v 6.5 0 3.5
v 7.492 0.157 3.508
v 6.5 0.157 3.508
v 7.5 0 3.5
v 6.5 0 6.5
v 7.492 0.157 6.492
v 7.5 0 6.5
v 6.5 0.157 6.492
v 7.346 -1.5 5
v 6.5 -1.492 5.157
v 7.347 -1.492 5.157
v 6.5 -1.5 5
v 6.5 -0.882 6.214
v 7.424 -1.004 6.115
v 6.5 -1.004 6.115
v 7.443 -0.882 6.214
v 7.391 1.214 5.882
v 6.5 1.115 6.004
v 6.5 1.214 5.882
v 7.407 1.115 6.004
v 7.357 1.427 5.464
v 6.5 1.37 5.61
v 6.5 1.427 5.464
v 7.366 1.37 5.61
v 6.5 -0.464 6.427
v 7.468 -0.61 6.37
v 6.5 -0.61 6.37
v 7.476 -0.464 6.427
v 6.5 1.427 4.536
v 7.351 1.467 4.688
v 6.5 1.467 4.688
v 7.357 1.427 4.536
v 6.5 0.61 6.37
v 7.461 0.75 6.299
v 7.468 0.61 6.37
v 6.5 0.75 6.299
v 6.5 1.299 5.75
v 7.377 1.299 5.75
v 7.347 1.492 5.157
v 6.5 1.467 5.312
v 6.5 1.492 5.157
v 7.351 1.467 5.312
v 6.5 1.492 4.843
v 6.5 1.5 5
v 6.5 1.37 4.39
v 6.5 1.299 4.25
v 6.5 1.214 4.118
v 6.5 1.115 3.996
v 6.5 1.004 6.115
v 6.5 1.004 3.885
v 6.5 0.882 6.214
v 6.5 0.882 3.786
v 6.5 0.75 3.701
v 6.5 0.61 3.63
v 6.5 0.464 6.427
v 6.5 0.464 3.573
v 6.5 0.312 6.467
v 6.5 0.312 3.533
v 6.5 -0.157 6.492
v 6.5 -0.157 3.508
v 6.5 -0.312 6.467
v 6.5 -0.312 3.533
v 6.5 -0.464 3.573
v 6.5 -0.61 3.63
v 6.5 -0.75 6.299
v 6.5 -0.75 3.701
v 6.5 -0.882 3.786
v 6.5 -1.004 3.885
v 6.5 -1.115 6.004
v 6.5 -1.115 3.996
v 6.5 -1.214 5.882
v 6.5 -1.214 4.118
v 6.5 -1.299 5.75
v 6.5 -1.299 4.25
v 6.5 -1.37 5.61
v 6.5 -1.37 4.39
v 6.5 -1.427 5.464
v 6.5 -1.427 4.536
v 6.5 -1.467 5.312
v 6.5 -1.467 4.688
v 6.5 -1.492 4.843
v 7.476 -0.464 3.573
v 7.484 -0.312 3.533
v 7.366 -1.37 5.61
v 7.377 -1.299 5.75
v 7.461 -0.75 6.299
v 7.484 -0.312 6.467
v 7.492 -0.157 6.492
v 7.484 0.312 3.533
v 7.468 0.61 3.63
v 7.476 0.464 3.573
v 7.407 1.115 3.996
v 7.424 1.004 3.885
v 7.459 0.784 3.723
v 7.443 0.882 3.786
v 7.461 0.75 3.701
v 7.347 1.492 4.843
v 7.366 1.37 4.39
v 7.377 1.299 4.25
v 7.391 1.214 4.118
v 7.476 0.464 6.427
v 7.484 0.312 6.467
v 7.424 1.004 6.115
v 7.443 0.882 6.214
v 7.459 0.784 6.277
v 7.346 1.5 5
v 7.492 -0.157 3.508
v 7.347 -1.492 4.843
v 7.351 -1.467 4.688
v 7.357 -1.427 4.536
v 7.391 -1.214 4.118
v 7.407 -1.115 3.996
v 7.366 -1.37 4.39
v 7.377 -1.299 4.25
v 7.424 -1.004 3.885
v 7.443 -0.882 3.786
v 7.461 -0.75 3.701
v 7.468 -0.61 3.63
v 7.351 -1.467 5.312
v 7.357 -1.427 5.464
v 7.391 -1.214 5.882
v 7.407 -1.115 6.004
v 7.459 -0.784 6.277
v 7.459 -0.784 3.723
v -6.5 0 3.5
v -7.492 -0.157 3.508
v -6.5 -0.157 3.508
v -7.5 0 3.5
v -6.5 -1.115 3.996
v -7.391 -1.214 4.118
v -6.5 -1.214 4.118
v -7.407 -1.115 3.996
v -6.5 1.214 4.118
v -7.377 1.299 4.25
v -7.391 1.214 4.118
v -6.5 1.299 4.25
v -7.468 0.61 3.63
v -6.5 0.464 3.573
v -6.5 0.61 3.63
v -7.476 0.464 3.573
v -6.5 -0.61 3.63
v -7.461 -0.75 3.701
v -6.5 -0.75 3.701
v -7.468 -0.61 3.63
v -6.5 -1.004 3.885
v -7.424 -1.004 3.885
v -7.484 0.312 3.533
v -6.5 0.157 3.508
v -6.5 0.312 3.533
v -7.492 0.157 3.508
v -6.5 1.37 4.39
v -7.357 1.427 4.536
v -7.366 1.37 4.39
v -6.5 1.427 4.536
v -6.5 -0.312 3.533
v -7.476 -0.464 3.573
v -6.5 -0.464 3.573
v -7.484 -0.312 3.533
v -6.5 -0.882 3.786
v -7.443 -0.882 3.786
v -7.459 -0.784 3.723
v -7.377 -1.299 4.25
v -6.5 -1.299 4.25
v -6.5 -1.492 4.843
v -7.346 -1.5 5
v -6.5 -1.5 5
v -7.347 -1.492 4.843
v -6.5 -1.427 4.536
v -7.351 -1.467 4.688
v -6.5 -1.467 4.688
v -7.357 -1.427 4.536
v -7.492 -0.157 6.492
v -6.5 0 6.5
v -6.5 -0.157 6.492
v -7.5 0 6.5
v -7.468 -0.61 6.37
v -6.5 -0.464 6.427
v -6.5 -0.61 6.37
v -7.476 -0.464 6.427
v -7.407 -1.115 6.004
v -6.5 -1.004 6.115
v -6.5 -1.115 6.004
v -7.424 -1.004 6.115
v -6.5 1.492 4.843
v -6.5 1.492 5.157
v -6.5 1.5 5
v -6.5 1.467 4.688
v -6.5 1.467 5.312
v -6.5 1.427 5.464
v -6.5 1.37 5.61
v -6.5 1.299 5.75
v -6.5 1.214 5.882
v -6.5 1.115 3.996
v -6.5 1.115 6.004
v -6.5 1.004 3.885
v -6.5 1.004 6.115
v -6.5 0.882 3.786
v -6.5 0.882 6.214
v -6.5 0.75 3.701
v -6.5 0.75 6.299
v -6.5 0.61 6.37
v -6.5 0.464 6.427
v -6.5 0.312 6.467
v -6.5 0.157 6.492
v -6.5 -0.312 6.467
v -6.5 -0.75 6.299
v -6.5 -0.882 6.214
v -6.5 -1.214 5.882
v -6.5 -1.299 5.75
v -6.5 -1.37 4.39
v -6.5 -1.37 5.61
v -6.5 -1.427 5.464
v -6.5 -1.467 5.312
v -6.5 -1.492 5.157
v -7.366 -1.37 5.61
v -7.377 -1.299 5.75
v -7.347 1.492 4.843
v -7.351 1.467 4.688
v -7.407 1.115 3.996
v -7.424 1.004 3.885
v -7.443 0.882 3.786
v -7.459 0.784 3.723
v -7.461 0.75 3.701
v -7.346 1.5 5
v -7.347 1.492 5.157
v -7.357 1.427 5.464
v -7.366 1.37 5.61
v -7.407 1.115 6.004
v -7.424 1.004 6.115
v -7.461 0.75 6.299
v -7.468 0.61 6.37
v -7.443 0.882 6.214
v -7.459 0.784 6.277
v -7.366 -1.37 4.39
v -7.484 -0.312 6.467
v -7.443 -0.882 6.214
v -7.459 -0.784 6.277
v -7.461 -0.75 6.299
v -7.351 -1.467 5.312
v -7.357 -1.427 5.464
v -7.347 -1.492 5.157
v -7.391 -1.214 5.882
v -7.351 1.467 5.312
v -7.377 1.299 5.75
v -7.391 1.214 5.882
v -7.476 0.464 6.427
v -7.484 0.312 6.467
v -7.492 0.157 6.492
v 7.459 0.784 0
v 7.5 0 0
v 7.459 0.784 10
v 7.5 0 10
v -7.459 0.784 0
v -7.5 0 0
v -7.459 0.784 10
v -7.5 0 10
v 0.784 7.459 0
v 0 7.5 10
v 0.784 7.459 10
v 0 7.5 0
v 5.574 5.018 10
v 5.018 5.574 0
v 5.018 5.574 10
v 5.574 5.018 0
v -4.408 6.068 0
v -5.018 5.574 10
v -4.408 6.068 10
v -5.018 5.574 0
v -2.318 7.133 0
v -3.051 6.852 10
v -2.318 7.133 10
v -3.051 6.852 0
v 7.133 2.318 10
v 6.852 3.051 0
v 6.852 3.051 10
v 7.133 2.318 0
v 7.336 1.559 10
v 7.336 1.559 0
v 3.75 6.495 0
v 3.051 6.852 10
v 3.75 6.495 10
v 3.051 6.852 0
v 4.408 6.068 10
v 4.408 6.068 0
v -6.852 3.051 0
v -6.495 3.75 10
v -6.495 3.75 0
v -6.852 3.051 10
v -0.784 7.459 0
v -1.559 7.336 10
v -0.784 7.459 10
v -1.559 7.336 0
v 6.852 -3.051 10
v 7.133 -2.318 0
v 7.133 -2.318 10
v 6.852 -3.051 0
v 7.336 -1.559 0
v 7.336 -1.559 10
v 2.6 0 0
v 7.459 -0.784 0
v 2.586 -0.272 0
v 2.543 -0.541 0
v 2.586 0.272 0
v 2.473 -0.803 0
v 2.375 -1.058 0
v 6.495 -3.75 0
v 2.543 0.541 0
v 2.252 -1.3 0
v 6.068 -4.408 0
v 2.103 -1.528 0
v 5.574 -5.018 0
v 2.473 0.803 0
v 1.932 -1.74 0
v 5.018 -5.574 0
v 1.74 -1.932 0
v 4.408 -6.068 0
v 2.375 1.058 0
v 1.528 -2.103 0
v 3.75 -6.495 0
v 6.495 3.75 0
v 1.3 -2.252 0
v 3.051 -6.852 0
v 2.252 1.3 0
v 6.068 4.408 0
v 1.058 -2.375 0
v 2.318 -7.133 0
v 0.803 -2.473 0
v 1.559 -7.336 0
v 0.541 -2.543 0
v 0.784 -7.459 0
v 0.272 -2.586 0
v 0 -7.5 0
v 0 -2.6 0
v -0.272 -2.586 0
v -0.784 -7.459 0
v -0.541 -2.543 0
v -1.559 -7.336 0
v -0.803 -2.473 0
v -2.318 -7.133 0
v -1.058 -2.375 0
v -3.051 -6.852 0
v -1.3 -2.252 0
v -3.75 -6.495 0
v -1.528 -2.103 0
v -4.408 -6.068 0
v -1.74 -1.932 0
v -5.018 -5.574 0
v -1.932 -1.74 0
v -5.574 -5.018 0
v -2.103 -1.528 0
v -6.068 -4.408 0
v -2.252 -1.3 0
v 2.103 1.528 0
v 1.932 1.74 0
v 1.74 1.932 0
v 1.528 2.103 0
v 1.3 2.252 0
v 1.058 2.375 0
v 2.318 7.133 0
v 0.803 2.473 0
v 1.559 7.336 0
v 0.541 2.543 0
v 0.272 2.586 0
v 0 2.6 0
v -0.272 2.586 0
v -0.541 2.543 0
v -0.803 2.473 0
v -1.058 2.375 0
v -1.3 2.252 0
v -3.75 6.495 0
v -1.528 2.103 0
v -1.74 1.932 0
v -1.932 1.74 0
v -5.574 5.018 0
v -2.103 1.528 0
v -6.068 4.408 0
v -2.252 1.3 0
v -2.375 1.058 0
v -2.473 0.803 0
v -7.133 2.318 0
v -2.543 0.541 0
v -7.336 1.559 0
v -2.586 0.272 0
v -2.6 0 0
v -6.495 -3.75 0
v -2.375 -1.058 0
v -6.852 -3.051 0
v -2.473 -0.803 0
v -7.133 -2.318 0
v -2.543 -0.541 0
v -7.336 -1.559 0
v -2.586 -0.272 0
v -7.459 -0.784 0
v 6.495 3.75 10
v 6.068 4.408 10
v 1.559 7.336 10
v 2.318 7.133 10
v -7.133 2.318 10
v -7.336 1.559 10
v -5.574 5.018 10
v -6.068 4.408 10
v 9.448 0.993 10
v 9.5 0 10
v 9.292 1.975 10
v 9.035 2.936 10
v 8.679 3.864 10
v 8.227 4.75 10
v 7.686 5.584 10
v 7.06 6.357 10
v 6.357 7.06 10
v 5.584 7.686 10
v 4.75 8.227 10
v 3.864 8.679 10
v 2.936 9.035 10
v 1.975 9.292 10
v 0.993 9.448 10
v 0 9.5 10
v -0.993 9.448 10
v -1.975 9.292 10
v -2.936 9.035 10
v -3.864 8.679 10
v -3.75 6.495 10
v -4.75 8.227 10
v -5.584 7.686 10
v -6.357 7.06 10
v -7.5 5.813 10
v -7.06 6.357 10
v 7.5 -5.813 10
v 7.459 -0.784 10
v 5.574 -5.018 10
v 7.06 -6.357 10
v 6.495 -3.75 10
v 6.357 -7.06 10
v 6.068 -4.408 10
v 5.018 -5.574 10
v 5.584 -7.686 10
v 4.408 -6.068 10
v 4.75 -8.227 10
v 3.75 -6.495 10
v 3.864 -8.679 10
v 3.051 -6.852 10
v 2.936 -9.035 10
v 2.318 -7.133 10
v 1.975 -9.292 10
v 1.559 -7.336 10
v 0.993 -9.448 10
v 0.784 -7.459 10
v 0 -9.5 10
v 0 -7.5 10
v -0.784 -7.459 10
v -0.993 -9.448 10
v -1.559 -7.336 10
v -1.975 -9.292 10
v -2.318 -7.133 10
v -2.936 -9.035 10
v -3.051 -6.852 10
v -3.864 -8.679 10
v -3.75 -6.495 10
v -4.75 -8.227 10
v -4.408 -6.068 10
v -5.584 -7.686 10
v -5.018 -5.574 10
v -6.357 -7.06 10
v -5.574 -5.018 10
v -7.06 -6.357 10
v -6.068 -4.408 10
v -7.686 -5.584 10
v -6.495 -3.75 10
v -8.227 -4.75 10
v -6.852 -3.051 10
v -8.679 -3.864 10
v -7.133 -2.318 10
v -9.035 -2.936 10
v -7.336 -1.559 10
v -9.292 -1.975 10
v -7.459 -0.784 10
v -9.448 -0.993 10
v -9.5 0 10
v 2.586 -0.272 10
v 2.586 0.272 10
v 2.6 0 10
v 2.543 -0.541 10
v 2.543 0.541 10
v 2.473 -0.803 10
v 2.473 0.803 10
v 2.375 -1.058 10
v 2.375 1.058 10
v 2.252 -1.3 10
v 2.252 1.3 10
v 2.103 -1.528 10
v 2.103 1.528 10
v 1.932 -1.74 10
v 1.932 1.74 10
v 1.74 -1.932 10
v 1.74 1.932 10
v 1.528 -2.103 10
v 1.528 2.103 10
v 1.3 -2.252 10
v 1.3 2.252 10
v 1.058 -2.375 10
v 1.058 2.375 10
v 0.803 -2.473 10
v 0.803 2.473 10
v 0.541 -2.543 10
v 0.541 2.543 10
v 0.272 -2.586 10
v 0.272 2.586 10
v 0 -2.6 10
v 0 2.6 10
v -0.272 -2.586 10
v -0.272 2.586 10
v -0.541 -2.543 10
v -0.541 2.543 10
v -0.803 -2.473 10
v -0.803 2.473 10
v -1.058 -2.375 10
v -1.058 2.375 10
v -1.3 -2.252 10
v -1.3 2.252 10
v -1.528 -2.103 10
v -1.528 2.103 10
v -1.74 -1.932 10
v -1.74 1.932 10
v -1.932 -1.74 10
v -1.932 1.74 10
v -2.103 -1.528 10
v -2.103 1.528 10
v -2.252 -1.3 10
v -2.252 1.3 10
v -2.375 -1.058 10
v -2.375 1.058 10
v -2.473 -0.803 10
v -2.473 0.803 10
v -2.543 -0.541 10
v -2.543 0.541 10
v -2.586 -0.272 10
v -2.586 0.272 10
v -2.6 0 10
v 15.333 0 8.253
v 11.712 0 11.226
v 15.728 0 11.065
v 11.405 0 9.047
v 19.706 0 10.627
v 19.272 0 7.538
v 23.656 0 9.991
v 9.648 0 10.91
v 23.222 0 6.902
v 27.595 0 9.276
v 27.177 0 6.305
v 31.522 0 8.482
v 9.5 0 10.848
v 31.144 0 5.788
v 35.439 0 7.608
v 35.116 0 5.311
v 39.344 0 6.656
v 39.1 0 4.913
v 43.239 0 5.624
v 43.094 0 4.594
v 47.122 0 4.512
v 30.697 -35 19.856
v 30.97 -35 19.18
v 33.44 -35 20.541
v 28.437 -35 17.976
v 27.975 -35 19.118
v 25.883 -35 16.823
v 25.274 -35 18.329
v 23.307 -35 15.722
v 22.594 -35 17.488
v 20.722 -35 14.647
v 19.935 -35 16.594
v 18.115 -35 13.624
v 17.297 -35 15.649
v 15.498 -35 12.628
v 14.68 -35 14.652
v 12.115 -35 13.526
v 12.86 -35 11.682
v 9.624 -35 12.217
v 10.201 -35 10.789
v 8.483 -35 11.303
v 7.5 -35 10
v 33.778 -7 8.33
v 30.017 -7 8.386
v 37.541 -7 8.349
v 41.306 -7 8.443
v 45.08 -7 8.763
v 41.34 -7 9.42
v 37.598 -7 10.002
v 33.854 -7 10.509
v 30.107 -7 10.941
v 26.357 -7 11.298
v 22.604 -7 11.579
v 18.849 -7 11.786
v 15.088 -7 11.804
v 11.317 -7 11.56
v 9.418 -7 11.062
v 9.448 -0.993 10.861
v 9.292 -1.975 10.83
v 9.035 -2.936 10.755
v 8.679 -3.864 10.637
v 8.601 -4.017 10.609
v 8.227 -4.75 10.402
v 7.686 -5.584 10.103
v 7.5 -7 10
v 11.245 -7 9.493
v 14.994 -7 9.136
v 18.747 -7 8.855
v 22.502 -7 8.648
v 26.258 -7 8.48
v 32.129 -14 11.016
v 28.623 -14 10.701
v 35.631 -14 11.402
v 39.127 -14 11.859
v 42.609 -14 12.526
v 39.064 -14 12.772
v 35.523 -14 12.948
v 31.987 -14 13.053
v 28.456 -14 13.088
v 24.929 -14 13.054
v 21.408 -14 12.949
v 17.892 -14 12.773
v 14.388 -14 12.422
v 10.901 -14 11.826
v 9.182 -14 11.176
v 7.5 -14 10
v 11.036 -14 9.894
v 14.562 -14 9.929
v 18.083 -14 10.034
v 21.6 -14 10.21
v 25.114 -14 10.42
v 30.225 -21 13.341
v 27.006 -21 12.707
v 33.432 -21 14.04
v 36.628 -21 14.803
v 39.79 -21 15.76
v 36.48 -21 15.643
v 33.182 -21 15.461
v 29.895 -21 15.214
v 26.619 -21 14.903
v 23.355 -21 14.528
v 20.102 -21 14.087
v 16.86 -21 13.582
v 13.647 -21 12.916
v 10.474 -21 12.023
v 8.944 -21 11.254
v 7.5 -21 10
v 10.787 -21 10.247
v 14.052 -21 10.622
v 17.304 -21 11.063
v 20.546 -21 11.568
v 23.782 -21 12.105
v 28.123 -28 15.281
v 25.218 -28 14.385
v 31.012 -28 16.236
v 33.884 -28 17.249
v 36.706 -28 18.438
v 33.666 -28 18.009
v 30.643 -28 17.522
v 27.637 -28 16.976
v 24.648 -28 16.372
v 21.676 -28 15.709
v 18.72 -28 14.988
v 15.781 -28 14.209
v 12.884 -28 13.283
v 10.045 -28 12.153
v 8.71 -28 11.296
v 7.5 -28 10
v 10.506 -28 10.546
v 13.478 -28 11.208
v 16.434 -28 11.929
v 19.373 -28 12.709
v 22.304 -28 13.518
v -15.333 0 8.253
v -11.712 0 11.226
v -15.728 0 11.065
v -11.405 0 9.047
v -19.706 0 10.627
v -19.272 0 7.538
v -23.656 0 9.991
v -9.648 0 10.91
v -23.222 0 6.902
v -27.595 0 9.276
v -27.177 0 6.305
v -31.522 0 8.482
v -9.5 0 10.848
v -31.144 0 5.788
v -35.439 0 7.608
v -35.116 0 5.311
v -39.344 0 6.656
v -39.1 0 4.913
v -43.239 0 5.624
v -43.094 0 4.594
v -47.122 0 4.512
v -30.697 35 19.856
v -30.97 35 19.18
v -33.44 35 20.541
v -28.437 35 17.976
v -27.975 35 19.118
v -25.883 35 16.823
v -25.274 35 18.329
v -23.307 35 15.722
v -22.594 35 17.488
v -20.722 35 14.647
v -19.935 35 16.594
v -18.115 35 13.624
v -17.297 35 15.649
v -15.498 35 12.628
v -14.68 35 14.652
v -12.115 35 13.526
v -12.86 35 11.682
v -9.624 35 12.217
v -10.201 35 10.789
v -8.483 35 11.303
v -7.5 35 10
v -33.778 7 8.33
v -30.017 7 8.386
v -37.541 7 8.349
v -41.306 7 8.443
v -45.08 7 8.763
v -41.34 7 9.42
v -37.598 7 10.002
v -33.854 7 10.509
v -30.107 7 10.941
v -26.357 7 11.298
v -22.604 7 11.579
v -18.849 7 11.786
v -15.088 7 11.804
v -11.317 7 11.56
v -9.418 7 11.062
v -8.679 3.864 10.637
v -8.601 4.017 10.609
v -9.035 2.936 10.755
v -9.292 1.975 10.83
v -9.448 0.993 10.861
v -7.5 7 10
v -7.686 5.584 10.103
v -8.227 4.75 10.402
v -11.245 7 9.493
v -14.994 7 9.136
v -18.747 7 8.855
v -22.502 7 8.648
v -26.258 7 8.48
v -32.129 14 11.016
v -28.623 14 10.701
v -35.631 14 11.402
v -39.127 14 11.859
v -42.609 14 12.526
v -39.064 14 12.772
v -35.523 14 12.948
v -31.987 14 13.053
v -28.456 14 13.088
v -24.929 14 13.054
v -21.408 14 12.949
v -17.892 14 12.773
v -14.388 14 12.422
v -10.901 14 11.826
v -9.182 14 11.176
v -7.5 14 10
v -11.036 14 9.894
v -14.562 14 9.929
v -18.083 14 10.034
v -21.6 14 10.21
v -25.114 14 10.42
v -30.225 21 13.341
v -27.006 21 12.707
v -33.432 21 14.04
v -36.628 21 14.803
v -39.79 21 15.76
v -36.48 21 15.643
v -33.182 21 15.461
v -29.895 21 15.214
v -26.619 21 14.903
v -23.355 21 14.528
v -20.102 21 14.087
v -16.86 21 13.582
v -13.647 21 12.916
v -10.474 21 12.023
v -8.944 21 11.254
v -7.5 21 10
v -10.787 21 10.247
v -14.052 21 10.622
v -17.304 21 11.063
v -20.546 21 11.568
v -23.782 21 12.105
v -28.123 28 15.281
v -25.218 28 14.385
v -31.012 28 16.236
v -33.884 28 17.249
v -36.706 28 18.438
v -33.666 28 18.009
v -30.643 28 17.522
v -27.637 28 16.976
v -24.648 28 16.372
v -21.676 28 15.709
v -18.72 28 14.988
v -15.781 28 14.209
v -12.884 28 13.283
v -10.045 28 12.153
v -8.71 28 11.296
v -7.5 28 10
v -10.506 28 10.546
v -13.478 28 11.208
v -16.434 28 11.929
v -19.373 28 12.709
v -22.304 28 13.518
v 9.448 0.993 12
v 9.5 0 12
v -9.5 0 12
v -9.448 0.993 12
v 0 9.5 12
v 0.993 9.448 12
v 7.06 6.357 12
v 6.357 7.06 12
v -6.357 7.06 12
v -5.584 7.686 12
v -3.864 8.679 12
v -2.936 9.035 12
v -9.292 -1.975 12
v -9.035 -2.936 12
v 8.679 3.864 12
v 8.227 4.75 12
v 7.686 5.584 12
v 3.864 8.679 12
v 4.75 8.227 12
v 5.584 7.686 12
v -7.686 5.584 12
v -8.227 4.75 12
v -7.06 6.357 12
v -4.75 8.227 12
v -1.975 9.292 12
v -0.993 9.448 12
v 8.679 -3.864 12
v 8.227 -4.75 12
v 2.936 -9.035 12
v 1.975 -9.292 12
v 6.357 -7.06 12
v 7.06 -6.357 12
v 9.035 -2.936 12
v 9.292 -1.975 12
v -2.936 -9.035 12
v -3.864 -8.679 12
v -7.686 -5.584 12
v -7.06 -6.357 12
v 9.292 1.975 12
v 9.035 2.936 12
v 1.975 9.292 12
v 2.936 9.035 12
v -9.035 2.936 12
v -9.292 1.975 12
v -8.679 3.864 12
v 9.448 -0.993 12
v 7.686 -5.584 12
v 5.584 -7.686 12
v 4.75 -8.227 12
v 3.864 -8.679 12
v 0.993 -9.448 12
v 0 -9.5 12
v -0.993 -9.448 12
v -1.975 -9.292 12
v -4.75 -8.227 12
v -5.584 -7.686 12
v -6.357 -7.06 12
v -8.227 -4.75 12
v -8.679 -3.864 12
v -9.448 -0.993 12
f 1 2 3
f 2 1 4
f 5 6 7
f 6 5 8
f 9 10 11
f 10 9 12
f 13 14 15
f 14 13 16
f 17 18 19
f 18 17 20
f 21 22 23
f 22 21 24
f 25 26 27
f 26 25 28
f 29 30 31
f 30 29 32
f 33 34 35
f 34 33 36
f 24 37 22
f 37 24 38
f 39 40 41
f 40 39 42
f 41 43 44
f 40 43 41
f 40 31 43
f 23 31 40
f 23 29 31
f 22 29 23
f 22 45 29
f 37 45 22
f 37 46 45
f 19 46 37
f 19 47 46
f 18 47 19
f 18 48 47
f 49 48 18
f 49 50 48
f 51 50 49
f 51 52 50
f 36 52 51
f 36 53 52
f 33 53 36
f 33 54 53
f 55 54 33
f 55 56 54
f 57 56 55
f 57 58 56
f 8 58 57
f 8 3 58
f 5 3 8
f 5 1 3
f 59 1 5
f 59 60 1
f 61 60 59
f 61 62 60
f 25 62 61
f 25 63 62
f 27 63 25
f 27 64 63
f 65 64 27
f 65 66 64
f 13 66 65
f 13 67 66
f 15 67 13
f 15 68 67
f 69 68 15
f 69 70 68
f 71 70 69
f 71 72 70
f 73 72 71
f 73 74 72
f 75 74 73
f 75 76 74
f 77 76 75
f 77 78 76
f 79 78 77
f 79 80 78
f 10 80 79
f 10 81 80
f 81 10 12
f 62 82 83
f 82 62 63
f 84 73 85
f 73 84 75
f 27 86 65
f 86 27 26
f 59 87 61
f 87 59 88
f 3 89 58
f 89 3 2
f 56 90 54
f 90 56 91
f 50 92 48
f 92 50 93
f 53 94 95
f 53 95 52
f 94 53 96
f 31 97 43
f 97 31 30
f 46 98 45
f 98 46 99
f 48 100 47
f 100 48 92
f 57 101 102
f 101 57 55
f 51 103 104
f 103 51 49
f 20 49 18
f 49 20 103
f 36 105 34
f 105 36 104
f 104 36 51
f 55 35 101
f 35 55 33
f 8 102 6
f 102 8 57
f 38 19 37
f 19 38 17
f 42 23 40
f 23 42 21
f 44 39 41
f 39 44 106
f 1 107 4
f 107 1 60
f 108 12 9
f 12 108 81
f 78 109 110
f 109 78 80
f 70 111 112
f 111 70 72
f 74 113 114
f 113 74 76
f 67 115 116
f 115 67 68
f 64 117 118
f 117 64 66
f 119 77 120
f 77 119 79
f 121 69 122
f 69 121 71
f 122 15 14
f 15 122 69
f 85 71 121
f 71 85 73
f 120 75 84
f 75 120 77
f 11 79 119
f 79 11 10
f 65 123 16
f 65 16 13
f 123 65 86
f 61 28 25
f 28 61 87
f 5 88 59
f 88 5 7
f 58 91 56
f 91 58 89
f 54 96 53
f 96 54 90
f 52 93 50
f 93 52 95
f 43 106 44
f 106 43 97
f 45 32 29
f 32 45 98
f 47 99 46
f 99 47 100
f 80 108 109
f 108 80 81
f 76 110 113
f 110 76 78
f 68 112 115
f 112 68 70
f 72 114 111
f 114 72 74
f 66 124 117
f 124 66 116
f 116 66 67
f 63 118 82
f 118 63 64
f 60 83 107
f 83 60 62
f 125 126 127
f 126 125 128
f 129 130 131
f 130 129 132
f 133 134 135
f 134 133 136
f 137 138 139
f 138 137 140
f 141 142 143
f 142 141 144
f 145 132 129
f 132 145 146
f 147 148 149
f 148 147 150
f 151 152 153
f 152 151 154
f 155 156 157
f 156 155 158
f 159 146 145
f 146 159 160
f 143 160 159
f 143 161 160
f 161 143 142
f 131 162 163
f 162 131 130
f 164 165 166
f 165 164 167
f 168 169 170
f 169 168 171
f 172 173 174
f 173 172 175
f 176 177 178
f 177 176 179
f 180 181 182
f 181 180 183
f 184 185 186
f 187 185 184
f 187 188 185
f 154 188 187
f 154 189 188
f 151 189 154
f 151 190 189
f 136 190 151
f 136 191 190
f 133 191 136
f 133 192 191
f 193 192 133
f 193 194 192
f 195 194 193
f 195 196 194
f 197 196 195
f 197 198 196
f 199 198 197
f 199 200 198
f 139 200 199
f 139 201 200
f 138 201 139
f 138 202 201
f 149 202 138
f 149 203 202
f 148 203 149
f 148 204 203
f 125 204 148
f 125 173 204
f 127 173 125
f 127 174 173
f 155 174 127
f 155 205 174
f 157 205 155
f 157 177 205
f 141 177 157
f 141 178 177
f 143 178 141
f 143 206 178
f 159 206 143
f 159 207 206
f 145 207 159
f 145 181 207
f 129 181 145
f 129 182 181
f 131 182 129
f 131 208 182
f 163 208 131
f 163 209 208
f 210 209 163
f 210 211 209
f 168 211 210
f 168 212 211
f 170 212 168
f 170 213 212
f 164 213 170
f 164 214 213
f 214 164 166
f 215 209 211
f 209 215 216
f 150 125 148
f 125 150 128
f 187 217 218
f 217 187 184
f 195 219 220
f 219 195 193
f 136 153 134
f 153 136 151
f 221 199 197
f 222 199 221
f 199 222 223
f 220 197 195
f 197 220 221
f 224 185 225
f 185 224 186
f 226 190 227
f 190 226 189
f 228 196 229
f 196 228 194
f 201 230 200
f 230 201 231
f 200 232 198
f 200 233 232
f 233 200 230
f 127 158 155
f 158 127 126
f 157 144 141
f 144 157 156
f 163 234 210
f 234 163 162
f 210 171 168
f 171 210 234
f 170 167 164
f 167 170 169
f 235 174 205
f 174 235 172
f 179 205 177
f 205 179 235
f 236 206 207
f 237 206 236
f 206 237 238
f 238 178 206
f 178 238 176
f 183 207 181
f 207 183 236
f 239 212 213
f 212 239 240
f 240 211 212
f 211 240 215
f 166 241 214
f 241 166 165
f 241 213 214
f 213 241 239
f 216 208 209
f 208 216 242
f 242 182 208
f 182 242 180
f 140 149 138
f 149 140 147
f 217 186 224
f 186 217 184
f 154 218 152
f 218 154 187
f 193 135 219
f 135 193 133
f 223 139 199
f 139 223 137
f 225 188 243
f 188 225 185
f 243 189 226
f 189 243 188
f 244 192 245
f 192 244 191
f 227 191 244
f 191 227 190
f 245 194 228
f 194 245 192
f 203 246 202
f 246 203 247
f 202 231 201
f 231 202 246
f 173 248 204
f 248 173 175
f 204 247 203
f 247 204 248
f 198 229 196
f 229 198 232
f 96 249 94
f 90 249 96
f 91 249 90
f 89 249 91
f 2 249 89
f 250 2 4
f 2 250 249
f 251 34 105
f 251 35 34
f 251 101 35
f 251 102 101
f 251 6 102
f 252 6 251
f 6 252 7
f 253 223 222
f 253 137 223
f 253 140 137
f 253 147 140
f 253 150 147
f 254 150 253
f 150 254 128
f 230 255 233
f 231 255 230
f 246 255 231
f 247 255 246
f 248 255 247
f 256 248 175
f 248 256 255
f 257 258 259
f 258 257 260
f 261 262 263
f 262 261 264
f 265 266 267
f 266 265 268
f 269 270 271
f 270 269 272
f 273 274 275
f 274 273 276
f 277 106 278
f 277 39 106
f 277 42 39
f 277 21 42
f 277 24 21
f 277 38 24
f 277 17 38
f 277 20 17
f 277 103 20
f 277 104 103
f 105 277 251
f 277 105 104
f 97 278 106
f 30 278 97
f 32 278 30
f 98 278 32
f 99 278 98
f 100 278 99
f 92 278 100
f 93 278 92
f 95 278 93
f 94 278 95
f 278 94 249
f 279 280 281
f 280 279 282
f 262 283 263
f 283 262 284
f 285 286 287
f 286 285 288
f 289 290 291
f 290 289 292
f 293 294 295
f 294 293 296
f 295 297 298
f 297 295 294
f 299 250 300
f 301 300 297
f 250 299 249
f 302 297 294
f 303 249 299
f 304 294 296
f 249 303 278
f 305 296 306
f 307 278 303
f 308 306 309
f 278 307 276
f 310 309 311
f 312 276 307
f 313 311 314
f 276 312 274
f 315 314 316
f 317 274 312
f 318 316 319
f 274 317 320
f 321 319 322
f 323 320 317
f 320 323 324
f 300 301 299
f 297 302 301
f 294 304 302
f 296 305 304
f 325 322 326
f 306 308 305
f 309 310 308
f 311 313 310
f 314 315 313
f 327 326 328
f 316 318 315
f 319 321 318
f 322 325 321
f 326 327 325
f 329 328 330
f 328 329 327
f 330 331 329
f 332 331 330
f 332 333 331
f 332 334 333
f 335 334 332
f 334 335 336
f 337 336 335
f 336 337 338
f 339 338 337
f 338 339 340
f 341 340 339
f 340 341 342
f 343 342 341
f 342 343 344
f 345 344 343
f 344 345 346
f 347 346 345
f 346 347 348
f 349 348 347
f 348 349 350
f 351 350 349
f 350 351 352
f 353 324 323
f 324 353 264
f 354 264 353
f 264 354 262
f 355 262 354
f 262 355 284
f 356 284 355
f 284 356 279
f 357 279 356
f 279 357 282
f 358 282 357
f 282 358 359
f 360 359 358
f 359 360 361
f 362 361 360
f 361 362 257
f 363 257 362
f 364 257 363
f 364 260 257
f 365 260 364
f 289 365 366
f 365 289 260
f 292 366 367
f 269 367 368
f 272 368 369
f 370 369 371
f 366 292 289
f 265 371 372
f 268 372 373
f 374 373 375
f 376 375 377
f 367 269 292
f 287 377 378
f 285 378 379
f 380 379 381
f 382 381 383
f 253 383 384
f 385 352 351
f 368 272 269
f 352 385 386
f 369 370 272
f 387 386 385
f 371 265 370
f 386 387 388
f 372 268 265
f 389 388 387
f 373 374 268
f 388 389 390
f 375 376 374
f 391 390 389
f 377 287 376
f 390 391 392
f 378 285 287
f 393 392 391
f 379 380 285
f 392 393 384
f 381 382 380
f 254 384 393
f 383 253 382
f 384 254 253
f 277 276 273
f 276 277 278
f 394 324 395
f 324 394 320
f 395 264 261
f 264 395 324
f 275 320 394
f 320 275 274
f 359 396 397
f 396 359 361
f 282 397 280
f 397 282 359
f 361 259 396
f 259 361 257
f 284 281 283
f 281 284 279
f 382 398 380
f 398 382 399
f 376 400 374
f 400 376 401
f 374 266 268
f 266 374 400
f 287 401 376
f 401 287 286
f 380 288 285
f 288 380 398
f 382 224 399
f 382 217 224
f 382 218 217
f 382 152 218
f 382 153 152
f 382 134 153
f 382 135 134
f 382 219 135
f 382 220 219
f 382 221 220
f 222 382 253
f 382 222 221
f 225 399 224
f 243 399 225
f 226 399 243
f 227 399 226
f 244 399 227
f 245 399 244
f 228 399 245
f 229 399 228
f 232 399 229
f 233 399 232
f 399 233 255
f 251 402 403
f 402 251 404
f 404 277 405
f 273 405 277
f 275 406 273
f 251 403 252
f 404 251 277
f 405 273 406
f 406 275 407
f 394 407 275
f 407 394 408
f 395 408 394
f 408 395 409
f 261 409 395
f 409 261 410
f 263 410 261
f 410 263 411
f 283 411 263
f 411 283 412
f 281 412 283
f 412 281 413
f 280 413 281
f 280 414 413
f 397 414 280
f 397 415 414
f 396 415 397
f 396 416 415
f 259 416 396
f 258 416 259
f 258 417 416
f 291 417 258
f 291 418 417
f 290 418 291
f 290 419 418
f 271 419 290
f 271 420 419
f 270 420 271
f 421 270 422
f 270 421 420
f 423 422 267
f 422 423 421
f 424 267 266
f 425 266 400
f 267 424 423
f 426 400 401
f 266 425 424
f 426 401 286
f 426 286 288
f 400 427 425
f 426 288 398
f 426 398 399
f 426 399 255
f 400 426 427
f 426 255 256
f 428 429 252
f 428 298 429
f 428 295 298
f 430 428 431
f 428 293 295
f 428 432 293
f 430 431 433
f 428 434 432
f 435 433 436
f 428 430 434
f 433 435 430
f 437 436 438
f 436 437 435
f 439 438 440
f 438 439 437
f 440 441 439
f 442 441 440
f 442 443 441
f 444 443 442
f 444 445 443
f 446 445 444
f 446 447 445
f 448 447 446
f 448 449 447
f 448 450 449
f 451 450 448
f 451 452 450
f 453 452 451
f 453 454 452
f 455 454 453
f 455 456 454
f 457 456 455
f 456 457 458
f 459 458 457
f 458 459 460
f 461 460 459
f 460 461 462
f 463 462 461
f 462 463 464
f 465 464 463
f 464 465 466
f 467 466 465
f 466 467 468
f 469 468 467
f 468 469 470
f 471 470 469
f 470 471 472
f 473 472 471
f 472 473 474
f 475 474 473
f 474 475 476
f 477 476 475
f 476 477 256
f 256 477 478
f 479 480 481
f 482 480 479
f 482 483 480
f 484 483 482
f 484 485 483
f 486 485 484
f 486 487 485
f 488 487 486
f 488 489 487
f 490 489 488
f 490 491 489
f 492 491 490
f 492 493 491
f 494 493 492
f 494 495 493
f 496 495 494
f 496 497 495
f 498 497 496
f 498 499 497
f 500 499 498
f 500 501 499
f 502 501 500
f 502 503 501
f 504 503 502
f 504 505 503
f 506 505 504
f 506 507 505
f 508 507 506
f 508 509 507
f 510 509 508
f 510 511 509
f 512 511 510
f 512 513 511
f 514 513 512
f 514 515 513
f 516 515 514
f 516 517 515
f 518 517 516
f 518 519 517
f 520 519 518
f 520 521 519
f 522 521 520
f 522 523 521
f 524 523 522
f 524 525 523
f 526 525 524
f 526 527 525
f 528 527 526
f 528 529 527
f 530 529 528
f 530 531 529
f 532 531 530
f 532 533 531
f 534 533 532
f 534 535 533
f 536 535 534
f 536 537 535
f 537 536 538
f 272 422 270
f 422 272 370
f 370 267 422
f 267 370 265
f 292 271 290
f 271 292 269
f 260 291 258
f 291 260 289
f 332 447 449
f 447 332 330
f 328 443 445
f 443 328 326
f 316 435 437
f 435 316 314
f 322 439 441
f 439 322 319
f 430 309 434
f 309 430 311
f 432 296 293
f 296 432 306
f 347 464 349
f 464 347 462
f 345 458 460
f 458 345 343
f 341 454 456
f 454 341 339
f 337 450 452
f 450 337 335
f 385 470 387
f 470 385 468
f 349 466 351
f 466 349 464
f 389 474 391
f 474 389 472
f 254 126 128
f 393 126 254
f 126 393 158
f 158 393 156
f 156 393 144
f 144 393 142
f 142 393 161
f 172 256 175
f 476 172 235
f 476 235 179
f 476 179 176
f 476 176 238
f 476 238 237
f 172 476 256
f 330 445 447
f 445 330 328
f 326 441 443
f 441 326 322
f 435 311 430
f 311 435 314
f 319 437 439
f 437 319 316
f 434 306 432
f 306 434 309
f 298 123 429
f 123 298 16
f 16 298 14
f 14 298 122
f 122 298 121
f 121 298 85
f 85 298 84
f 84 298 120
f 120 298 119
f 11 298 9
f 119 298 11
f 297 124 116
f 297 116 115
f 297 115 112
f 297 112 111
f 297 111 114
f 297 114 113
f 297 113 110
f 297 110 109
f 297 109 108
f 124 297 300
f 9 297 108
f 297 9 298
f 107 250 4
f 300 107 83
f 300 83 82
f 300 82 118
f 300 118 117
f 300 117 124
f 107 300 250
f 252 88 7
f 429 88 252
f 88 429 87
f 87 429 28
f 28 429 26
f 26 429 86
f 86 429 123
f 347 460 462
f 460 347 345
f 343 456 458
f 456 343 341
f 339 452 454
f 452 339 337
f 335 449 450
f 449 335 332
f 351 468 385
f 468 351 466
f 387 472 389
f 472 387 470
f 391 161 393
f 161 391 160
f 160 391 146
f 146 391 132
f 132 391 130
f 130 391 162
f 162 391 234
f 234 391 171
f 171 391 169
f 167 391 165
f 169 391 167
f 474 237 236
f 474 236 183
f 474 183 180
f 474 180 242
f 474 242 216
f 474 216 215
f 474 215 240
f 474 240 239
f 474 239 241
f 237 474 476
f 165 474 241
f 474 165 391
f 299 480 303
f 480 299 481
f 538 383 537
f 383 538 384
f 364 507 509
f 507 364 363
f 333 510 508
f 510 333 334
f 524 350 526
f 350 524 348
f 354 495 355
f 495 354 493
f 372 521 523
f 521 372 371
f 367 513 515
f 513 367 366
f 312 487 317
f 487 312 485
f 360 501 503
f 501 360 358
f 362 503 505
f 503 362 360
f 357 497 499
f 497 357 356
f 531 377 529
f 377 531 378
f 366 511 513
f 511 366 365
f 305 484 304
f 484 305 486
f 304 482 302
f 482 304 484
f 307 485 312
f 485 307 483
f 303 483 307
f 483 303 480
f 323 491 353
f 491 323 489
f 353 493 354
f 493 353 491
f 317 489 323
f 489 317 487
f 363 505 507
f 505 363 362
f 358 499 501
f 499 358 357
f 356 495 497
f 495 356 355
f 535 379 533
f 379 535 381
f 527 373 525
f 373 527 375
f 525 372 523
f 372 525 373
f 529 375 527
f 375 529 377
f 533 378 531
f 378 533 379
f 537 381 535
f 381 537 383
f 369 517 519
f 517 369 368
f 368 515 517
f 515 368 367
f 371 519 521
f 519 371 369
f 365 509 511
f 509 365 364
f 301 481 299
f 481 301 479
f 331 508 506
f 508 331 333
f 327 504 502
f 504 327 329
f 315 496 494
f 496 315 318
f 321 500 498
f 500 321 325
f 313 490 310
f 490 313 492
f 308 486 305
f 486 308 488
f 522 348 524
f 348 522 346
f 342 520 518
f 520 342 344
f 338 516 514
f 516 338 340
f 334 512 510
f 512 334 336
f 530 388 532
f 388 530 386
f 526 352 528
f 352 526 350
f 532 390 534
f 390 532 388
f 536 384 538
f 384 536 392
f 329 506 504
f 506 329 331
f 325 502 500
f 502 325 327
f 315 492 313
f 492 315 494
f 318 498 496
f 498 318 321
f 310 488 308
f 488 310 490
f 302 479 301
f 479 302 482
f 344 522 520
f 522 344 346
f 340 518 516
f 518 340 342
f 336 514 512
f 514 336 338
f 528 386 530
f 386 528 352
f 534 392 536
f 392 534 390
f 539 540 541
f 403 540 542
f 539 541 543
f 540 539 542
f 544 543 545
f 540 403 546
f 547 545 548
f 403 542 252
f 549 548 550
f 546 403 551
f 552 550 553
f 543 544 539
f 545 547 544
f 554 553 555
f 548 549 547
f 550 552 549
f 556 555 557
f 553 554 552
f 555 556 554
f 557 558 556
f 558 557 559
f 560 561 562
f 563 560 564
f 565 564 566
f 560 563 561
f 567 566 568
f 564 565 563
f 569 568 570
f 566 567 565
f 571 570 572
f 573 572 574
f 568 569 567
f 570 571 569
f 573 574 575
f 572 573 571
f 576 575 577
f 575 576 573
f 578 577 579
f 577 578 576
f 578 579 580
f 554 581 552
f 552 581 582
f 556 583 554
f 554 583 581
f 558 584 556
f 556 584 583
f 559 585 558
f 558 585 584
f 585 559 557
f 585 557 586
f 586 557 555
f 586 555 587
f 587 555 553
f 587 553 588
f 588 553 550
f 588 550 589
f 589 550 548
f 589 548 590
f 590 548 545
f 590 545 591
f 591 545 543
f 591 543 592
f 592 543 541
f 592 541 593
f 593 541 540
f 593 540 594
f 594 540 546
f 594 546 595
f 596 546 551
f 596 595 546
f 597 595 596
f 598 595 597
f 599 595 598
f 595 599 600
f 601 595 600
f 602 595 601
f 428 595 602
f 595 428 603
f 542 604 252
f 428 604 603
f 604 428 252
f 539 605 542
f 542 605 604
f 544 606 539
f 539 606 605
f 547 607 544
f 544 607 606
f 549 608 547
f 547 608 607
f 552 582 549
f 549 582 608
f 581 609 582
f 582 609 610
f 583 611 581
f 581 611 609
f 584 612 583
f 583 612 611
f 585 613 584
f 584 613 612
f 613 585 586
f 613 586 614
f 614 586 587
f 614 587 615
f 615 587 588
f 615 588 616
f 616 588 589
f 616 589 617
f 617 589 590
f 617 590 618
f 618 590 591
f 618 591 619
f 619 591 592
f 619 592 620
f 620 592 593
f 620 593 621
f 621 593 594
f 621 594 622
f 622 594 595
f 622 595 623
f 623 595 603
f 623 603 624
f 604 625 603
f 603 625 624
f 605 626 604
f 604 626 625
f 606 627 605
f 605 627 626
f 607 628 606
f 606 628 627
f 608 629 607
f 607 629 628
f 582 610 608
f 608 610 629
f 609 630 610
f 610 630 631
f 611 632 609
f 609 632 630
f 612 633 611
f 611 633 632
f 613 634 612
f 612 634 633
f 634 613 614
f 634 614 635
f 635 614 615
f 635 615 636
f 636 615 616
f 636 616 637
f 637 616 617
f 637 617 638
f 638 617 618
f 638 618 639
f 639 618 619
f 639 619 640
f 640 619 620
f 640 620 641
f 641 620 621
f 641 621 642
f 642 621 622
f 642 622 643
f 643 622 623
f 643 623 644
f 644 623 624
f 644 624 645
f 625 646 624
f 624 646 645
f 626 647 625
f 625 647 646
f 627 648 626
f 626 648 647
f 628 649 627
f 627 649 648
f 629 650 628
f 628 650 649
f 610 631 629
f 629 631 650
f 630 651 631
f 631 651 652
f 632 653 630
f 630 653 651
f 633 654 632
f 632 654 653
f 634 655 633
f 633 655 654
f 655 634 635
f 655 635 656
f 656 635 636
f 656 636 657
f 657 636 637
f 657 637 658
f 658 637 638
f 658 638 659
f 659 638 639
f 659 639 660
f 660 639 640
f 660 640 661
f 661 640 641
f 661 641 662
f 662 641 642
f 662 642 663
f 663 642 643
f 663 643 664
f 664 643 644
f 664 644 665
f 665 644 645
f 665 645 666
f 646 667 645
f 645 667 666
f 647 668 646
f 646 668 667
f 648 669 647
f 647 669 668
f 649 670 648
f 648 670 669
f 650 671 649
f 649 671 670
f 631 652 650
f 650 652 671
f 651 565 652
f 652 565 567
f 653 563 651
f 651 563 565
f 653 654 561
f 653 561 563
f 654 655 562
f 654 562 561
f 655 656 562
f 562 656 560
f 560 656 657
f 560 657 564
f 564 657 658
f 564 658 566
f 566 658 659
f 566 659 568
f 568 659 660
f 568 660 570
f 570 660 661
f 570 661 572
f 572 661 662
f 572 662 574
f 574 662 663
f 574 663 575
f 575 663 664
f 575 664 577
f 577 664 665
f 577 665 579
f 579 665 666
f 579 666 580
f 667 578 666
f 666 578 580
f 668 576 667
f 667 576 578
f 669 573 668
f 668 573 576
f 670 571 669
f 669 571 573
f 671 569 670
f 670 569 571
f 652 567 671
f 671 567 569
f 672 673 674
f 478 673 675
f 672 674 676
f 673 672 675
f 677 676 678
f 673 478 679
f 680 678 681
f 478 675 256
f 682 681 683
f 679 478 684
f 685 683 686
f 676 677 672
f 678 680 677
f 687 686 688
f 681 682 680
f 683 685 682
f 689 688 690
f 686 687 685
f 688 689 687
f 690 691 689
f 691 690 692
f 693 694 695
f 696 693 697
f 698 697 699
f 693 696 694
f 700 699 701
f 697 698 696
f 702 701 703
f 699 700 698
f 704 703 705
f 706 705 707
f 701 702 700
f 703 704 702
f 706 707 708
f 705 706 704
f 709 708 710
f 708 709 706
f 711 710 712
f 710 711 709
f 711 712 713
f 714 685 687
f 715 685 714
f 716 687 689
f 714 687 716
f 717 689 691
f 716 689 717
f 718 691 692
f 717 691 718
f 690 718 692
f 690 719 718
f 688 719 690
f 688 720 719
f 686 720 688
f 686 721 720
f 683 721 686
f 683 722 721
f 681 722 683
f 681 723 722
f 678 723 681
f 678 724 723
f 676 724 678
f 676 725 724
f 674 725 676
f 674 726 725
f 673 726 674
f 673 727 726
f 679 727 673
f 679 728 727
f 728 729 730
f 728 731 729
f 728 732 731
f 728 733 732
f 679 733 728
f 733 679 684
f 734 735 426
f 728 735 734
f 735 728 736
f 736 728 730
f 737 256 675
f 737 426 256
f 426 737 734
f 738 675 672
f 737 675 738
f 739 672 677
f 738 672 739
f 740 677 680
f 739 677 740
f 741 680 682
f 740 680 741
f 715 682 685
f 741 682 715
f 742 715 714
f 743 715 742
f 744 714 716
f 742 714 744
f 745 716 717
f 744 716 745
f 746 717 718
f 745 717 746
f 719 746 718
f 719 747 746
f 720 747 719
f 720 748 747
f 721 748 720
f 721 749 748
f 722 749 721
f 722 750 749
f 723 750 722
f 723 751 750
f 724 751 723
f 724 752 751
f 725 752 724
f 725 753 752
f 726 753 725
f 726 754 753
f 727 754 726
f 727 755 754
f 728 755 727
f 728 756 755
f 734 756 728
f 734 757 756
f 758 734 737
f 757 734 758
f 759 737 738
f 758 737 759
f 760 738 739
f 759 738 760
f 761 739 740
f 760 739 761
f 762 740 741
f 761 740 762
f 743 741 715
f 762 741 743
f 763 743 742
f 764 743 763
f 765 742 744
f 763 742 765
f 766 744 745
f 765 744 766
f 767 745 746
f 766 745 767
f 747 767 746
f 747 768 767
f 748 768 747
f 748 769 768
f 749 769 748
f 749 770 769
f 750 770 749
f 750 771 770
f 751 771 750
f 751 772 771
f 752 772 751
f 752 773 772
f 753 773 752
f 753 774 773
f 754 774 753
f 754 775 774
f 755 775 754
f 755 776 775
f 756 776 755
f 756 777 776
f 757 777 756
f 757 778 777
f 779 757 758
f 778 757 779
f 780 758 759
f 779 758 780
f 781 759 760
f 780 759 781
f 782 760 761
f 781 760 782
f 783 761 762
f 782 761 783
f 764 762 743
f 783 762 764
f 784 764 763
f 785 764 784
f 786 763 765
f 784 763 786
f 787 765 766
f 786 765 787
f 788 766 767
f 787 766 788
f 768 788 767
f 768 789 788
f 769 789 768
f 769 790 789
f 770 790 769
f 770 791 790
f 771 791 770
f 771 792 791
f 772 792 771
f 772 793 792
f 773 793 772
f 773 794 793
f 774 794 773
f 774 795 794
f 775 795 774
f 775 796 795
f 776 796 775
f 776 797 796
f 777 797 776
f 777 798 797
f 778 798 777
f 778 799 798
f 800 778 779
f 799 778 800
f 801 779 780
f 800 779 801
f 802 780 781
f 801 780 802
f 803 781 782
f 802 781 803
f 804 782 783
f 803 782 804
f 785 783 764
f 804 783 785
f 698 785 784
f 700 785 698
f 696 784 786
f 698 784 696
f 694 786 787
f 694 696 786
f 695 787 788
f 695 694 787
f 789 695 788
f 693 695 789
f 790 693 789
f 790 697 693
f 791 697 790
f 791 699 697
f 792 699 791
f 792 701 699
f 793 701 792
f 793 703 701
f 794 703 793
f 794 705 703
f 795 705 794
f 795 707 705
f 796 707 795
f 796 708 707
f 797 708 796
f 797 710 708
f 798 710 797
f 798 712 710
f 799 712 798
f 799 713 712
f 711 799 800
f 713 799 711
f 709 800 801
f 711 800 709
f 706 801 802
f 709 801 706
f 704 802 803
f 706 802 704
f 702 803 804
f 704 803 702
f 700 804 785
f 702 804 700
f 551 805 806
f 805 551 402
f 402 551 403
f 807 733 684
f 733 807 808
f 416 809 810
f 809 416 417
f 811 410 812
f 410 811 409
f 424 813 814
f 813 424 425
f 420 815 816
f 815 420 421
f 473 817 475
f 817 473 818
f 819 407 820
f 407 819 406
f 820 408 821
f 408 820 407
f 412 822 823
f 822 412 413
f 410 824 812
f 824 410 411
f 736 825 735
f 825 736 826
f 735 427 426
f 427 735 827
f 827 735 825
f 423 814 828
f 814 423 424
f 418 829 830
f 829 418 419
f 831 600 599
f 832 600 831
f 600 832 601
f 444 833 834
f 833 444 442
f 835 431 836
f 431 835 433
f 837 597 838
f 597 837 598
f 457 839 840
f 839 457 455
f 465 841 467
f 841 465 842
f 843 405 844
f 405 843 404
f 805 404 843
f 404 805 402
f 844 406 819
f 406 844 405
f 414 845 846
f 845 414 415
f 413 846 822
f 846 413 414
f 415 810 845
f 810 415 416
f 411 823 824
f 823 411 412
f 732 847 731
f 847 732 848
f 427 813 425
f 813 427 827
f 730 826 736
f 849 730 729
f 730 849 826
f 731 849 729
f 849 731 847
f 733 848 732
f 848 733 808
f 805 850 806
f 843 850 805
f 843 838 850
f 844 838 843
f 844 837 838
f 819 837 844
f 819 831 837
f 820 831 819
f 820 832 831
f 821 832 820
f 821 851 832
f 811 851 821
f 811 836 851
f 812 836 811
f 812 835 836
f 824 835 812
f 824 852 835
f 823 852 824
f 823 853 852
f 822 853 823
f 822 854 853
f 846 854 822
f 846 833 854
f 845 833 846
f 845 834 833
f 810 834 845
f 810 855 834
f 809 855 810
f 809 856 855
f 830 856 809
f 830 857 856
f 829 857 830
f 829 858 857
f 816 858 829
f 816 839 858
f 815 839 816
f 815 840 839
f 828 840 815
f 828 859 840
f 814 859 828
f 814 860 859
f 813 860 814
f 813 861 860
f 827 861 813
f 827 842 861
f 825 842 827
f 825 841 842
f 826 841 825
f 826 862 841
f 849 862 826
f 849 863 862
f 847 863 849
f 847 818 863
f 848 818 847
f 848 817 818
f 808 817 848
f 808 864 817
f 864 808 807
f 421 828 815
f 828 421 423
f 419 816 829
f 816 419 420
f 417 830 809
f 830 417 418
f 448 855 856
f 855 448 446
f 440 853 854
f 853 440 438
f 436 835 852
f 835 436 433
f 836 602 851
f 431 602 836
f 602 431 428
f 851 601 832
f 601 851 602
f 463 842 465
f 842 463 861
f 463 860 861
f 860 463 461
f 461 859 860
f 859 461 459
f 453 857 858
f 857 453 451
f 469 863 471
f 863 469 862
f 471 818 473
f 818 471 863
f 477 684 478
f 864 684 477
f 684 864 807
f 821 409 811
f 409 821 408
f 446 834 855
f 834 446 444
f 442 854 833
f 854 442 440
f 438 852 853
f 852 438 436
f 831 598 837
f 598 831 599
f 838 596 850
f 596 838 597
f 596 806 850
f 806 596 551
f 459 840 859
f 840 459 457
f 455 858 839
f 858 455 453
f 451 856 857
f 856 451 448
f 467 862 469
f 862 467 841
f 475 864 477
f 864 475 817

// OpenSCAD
/*
 * COMPLETE MOTOR + IMPELLER ASSEMBLY
 * For CFD fluid testing and visualization
 * 
 * This model includes:
 *   - Brushless motor (2204-2206 size)
 *   - Motor shaft (5mm)
 *   - Impeller hub
 *   - 3 impeller variants (bladeless, AI-blades, hybrid)
 *   - Mounting plate
 * 
 * Usage:
 *   - Render full assembly: F6
 *   - Export for CFD: Set EXPORT_MODE = "impeller_only"
 *   - Change design: Set IMPELLER_TYPE = "bladeless" | "bladed" | "hybrid"
 */

// ============================================================================
// CONFIGURATION PARAMETERS (AI-Optimizable)
// ============================================================================

// General Settings
$fn = 60;  // Resolution for CFD export (increase to 100 for final)

// Export Mode
EXPORT_MODE = "impeller_only";  // Options: "full_assembly", "impeller_only", "motor_only"

// Impeller Type
IMPELLER_TYPE = "bladed";  // Options: "bladeless", "bladed", "hybrid"

// Motor Specifications (2204-2206 brushless)
MOTOR_DIAMETER = 28;         // mm
MOTOR_HEIGHT = 25;           // mm
MOTOR_SHAFT_DIAMETER = 5;    // mm (standard)
MOTOR_SHAFT_LENGTH = 15;     // mm (extends above motor)
MOTOR_MOUNT_PATTERN = 16;    // mm (16x16 or 19x19 common)
MOTOR_SCREW_DIAMETER = 3;    // M3 screws

// Impeller Parameters - BLADELESS
BLADELESS_OUTER_DIAMETER = 90;    // mm
BLADELESS_AIR_GAP = 0.8;          // mm (optimize: 0.6-1.2)
BLADELESS_THROAT_RATIO = 0.72;    // (optimize: 0.65-0.80)
BLADELESS_EXPANSION_ANGLE = 18;   // degrees (optimize: 12-25)
BLADELESS_RING_THICKNESS = 3;     // mm (optimize: 2-4)
BLADELESS_HEIGHT = 24;            // mm

// Impeller Parameters - BLADED
BLADED_DIAMETER = 85;
BLADED_HUB_DIAMETER = 15;         // mm (optimize: 12-20)
BLADED_BLADE_COUNT = 2;
BLADED_ROOT_CHORD = 40;
BLADED_TIP_CHORD_RATIO = 0.7;    // (optimize: 0.6-0.8)
BLADED_BLADE_THICKNESS = 2;       // mm (optimize: 1.5-3)
BLADED_BLADE_TWIST = -30;
BLADED_ATTACK_ANGLE = -8;
BLADED_BLADE_HEIGHT = 12;         // mm (optimize: 10-15)

// Hub Parameters
HUB_DIAMETER = 15;
HUB_HEIGHT = 10;
HUB_SET_SCREW_DIAMETER = 3;  // M3 set screw

// Mounting Plate
PLATE_SIZE = 50;
PLATE_THICKNESS = 3;

// ============================================================================
// MOTOR MODEL
// ============================================================================

module brushless_motor_2204() {
    color("DarkSlateGray") {
        // Motor can (bell)
        difference() {
            cylinder(h=MOTOR_HEIGHT, d=MOTOR_DIAMETER);
            
            // Hollow inside (weight reduction visualization)
            translate([0, 0, -0.5])
                cylinder(h=MOTOR_HEIGHT - 5, d=MOTOR_DIAMETER - 4);
            
            // Mounting holes
            for(i = [0:3]) {
                rotate([0, 0, i * 90])
                    translate([MOTOR_MOUNT_PATTERN/2, 0, MOTOR_HEIGHT/2])
                        rotate([90, 0, 0])
                            cylinder(h=MOTOR_DIAMETER, d=MOTOR_SCREW_DIAMETER, center=true);
            }
        }
        
        // Motor base
        translate([0, 0, -3])
            cylinder(h=3, d=MOTOR_DIAMETER - 2);
    }
    
    // Motor shaft
    color("Silver")
        translate([0, 0, MOTOR_HEIGHT])
            cylinder(h=MOTOR_SHAFT_LENGTH, d=MOTOR_SHAFT_DIAMETER);
    
    // Shaft tip (for hub attachment)
    color("Silver")
        translate([0, 0, MOTOR_HEIGHT + MOTOR_SHAFT_LENGTH])
            cylinder(h=2, d=MOTOR_SHAFT_DIAMETER - 0.5);
}

// ============================================================================
// IMPELLER HUB
// ============================================================================

module impeller_hub() {
    color("Gray")
    difference() {
        // Hub body
        cylinder(h=HUB_HEIGHT, d=HUB_DIAMETER);
        
        // Shaft hole (5mm + 0.2mm clearance)
        translate([0, 0, -0.5])
            cylinder(h=HUB_HEIGHT + 1, d=MOTOR_SHAFT_DIAMETER + 0.2);
        
        // Set screw holes (2x for balance)
        for(i = [0:1]) {
            rotate([0, 0, i * 180])
                translate([HUB_DIAMETER/2 - 1, 0, HUB_HEIGHT/2])
                    rotate([0, 90, 0])
                        cylinder(h=5, d=HUB_SET_SCREW_DIAMETER);
        }
    }
}

// ============================================================================
// BLADELESS IMPELLER (Dyson-style)
// ============================================================================

module bladeless_impeller() {
    outer_r = BLADELESS_OUTER_DIAMETER / 2;
    throat_r = outer_r * BLADELESS_THROAT_RATIO;
    gap = BLADELESS_AIR_GAP;
    
    color("SkyBlue", 0.7)
    difference() {
        // Outer ring
        rotate_extrude()
            translate([outer_r - BLADELESS_RING_THICKNESS/2, BLADELESS_HEIGHT/2, 0])
                circle(d=BLADELESS_RING_THICKNESS + BLADELESS_HEIGHT);
        
        // Inner air gap (critical for Coanda effect)
        rotate_extrude()
            translate([outer_r - gap - BLADELESS_RING_THICKNESS/2, BLADELESS_HEIGHT/2, 0])
                circle(d=BLADELESS_RING_THICKNESS + BLADELESS_HEIGHT - 2*gap);
    }
    
    // Base plate (connects to hub)
    color("SkyBlue", 0.7)
    translate([0, 0, -2])
        difference() {
            cylinder(h=2, d=outer_r * 2);
            translate([0, 0, -0.5])
                cylinder(h=3, d=HUB_DIAMETER + 1);
        }
    
    // Air inlet (bell-shaped for smooth flow)
    color("SkyBlue", 0.7)
    translate([0, 0, -2]) {
        difference() {
            cylinder(h=15, d1=throat_r * 2, d2=outer_r * 1.8);
            translate([0, 0, -0.5])
                cylinder(h=16, d1=throat_r * 2 - 3, d2=outer_r * 1.8 - 3);
        }
    }
}

// ============================================================================
// AI-OPTIMIZED BLADED IMPELLER (NACA 2412 profile)
// ============================================================================

module naca_2412_blade(chord, height, twist_angle, attack_angle) {
    // Simplified NACA 2412 airfoil profile
    // Using parametric approximation for 3D printing
    
    color("LightSteelBlue", 0.8)
    linear_extrude(height=height, twist=twist_angle, scale=BLADED_TIP_CHORD_RATIO) {
        rotate([0, 0, attack_angle])
        polygon([
            // Upper surface (cambered)
            [0, 0],
            [chord * 0.05, chord * 0.03],
            [chord * 0.1, chord * 0.045],
            [chord * 0.2, chord * 0.055],
            [chord * 0.3, chord * 0.058],
            [chord * 0.4, chord * 0.056],
            [chord * 0.5, chord * 0.052],
            [chord * 0.6, chord * 0.046],
            [chord * 0.7, chord * 0.038],
            [chord * 0.8, chord * 0.028],
            [chord * 0.9, chord * 0.016],
            [chord * 1.0, chord * 0.002],
            // Lower surface (less cambered)
            [chord * 0.9, -chord * 0.010],
            [chord * 0.8, -chord * 0.016],
            [chord * 0.7, -chord * 0.020],
            [chord * 0.6, -chord * 0.022],
            [chord * 0.5, -chord * 0.023],
            [chord * 0.4, -chord * 0.022],
            [chord * 0.3, -chord * 0.020],
            [chord * 0.2, -chord * 0.016],
            [chord * 0.1, -chord * 0.010],
            [chord * 0.05, -chord * 0.005],
        ]);
    }
}

module bladed_impeller() {
    // Blades
    for(i = [0 : BLADED_BLADE_COUNT - 1]) {
        rotate([0, 0, i * (360 / BLADED_BLADE_COUNT)])
            translate([BLADED_HUB_DIAMETER/2, 0, 0])
                rotate([90, 0, 0])
                    naca_2412_blade(
                        BLADED_ROOT_CHORD, 
                        (BLADED_DIAMETER - BLADED_HUB_DIAMETER) / 2,
                        BLADED_BLADE_TWIST,
                        BLADED_ATTACK_ANGLE
                    );
    }
    
    // Hub disk (connects blades)
    color("LightSteelBlue", 0.8)
    cylinder(h=2, d=BLADED_HUB_DIAMETER + 4);
}

// ============================================================================
// HYBRID IMPELLER (Blades inside bladeless ring)
// ============================================================================

module hybrid_impeller() {
    // Outer bladeless ring
    bladeless_impeller();
    
    // Inner bladed impeller (scaled down to fit)
    scale([0.85, 0.85, 1])
        bladed_impeller();
}

// ============================================================================
// MOUNTING PLATE
// ============================================================================

module mounting_plate() {
    color("DimGray")
    difference() {
        // Base plate
        translate([-PLATE_SIZE/2, -PLATE_SIZE/2, 0])
            cube([PLATE_SIZE, PLATE_SIZE, PLATE_THICKNESS]);
        
        // Center hole for motor shaft
        translate([0, 0, -0.5])
            cylinder(h=PLATE_THICKNESS + 1, d=MOTOR_DIAMETER + 2);
        
        // Motor mounting holes
        for(i = [0:3]) {
            rotate([0, 0, i * 90])
                translate([MOTOR_MOUNT_PATTERN/2, 0, -0.5])
                    cylinder(h=PLATE_THICKNESS + 1, d=MOTOR_SCREW_DIAMETER);
        }
    }
}

// ============================================================================
// COMPLETE ASSEMBLY
// ============================================================================

module complete_assembly() {
    // Mounting plate (bottom)
    translate([0, 0, -PLATE_THICKNESS])
        mounting_plate();
    
    // Motor
    translate([0, 0, 0])
        brushless_motor_2204();
    
    // Hub (on shaft)
    translate([0, 0, MOTOR_HEIGHT + MOTOR_SHAFT_LENGTH - 2])
        impeller_hub();
    
    // Impeller (on hub)
    translate([0, 0, MOTOR_HEIGHT + MOTOR_SHAFT_LENGTH + HUB_HEIGHT]) {
        if (IMPELLER_TYPE == "bladeless") {
            bladeless_impeller();
        } else if (IMPELLER_TYPE == "bladed") {
            bladed_impeller();
        } else if (IMPELLER_TYPE == "hybrid") {
            hybrid_impeller();
        }
    }
}

// ============================================================================
// RENDER BASED ON EXPORT MODE
// ============================================================================

if (EXPORT_MODE == "full_assembly") {
    complete_assembly();
} 
else if (EXPORT_MODE == "impeller_only") {
    // For CFD testing - impeller + hub only
    impeller_hub();
    translate([0, 0, HUB_HEIGHT]) {
        if (IMPELLER_TYPE == "bladeless") {
            bladeless_impeller();
        } else if (IMPELLER_TYPE == "bladed") {
            bladed_impeller();
        } else if (IMPELLER_TYPE == "hybrid") {
            hybrid_impeller();
        }
    }
}
else if (EXPORT_MODE == "motor_only") {
    brushless_motor_2204();
}

// ============================================================================
// ANNOTATIONS FOR VISUALIZATION
// ============================================================================

// Uncomment to show dimensions
/*
color("Red", 0.3)
translate([BLADED_DIAMETER/2 + 10, 0, 20])
    text(str("Ø", BLADED_DIAMETER, "mm"), size=5, halign="left");

color("Green", 0.3)
translate([0, BLADED_DIAMETER/2 + 10, 20])
    text(str(BLADED_BLADE_COUNT, " blades"), size=5, halign="center");
*/

// ============================================================================
// EXPORT NOTES
// ============================================================================

/*
 * TO EXPORT FOR CFD TESTING:
 * 
 * 1. Set EXPORT_MODE = "impeller_only"
 * 2. Set IMPELLER_TYPE = "bladeless" (or "bladed" or "hybrid")
 * 3. Press F6 to render
 * 4. File → Export → Export as STL
 * 5. Use filename: impeller_bladeless_fn60.stl
 * 
 * FOR OPTIMIZATION:
 * - Modify parameters at top (marked with "optimize:")
 * - Re-render and export
 * - Upload to SimScale for CFD
 * - Compare results
 * 
 * RECOMMENDED CFD SETTINGS:
 * - Solver: k-omega SST
 * - RPM: 5000, 7000, 9000
 * - Mesh: 3-5M cells
 * - Boundary: Rotating zone on impeller
 */
